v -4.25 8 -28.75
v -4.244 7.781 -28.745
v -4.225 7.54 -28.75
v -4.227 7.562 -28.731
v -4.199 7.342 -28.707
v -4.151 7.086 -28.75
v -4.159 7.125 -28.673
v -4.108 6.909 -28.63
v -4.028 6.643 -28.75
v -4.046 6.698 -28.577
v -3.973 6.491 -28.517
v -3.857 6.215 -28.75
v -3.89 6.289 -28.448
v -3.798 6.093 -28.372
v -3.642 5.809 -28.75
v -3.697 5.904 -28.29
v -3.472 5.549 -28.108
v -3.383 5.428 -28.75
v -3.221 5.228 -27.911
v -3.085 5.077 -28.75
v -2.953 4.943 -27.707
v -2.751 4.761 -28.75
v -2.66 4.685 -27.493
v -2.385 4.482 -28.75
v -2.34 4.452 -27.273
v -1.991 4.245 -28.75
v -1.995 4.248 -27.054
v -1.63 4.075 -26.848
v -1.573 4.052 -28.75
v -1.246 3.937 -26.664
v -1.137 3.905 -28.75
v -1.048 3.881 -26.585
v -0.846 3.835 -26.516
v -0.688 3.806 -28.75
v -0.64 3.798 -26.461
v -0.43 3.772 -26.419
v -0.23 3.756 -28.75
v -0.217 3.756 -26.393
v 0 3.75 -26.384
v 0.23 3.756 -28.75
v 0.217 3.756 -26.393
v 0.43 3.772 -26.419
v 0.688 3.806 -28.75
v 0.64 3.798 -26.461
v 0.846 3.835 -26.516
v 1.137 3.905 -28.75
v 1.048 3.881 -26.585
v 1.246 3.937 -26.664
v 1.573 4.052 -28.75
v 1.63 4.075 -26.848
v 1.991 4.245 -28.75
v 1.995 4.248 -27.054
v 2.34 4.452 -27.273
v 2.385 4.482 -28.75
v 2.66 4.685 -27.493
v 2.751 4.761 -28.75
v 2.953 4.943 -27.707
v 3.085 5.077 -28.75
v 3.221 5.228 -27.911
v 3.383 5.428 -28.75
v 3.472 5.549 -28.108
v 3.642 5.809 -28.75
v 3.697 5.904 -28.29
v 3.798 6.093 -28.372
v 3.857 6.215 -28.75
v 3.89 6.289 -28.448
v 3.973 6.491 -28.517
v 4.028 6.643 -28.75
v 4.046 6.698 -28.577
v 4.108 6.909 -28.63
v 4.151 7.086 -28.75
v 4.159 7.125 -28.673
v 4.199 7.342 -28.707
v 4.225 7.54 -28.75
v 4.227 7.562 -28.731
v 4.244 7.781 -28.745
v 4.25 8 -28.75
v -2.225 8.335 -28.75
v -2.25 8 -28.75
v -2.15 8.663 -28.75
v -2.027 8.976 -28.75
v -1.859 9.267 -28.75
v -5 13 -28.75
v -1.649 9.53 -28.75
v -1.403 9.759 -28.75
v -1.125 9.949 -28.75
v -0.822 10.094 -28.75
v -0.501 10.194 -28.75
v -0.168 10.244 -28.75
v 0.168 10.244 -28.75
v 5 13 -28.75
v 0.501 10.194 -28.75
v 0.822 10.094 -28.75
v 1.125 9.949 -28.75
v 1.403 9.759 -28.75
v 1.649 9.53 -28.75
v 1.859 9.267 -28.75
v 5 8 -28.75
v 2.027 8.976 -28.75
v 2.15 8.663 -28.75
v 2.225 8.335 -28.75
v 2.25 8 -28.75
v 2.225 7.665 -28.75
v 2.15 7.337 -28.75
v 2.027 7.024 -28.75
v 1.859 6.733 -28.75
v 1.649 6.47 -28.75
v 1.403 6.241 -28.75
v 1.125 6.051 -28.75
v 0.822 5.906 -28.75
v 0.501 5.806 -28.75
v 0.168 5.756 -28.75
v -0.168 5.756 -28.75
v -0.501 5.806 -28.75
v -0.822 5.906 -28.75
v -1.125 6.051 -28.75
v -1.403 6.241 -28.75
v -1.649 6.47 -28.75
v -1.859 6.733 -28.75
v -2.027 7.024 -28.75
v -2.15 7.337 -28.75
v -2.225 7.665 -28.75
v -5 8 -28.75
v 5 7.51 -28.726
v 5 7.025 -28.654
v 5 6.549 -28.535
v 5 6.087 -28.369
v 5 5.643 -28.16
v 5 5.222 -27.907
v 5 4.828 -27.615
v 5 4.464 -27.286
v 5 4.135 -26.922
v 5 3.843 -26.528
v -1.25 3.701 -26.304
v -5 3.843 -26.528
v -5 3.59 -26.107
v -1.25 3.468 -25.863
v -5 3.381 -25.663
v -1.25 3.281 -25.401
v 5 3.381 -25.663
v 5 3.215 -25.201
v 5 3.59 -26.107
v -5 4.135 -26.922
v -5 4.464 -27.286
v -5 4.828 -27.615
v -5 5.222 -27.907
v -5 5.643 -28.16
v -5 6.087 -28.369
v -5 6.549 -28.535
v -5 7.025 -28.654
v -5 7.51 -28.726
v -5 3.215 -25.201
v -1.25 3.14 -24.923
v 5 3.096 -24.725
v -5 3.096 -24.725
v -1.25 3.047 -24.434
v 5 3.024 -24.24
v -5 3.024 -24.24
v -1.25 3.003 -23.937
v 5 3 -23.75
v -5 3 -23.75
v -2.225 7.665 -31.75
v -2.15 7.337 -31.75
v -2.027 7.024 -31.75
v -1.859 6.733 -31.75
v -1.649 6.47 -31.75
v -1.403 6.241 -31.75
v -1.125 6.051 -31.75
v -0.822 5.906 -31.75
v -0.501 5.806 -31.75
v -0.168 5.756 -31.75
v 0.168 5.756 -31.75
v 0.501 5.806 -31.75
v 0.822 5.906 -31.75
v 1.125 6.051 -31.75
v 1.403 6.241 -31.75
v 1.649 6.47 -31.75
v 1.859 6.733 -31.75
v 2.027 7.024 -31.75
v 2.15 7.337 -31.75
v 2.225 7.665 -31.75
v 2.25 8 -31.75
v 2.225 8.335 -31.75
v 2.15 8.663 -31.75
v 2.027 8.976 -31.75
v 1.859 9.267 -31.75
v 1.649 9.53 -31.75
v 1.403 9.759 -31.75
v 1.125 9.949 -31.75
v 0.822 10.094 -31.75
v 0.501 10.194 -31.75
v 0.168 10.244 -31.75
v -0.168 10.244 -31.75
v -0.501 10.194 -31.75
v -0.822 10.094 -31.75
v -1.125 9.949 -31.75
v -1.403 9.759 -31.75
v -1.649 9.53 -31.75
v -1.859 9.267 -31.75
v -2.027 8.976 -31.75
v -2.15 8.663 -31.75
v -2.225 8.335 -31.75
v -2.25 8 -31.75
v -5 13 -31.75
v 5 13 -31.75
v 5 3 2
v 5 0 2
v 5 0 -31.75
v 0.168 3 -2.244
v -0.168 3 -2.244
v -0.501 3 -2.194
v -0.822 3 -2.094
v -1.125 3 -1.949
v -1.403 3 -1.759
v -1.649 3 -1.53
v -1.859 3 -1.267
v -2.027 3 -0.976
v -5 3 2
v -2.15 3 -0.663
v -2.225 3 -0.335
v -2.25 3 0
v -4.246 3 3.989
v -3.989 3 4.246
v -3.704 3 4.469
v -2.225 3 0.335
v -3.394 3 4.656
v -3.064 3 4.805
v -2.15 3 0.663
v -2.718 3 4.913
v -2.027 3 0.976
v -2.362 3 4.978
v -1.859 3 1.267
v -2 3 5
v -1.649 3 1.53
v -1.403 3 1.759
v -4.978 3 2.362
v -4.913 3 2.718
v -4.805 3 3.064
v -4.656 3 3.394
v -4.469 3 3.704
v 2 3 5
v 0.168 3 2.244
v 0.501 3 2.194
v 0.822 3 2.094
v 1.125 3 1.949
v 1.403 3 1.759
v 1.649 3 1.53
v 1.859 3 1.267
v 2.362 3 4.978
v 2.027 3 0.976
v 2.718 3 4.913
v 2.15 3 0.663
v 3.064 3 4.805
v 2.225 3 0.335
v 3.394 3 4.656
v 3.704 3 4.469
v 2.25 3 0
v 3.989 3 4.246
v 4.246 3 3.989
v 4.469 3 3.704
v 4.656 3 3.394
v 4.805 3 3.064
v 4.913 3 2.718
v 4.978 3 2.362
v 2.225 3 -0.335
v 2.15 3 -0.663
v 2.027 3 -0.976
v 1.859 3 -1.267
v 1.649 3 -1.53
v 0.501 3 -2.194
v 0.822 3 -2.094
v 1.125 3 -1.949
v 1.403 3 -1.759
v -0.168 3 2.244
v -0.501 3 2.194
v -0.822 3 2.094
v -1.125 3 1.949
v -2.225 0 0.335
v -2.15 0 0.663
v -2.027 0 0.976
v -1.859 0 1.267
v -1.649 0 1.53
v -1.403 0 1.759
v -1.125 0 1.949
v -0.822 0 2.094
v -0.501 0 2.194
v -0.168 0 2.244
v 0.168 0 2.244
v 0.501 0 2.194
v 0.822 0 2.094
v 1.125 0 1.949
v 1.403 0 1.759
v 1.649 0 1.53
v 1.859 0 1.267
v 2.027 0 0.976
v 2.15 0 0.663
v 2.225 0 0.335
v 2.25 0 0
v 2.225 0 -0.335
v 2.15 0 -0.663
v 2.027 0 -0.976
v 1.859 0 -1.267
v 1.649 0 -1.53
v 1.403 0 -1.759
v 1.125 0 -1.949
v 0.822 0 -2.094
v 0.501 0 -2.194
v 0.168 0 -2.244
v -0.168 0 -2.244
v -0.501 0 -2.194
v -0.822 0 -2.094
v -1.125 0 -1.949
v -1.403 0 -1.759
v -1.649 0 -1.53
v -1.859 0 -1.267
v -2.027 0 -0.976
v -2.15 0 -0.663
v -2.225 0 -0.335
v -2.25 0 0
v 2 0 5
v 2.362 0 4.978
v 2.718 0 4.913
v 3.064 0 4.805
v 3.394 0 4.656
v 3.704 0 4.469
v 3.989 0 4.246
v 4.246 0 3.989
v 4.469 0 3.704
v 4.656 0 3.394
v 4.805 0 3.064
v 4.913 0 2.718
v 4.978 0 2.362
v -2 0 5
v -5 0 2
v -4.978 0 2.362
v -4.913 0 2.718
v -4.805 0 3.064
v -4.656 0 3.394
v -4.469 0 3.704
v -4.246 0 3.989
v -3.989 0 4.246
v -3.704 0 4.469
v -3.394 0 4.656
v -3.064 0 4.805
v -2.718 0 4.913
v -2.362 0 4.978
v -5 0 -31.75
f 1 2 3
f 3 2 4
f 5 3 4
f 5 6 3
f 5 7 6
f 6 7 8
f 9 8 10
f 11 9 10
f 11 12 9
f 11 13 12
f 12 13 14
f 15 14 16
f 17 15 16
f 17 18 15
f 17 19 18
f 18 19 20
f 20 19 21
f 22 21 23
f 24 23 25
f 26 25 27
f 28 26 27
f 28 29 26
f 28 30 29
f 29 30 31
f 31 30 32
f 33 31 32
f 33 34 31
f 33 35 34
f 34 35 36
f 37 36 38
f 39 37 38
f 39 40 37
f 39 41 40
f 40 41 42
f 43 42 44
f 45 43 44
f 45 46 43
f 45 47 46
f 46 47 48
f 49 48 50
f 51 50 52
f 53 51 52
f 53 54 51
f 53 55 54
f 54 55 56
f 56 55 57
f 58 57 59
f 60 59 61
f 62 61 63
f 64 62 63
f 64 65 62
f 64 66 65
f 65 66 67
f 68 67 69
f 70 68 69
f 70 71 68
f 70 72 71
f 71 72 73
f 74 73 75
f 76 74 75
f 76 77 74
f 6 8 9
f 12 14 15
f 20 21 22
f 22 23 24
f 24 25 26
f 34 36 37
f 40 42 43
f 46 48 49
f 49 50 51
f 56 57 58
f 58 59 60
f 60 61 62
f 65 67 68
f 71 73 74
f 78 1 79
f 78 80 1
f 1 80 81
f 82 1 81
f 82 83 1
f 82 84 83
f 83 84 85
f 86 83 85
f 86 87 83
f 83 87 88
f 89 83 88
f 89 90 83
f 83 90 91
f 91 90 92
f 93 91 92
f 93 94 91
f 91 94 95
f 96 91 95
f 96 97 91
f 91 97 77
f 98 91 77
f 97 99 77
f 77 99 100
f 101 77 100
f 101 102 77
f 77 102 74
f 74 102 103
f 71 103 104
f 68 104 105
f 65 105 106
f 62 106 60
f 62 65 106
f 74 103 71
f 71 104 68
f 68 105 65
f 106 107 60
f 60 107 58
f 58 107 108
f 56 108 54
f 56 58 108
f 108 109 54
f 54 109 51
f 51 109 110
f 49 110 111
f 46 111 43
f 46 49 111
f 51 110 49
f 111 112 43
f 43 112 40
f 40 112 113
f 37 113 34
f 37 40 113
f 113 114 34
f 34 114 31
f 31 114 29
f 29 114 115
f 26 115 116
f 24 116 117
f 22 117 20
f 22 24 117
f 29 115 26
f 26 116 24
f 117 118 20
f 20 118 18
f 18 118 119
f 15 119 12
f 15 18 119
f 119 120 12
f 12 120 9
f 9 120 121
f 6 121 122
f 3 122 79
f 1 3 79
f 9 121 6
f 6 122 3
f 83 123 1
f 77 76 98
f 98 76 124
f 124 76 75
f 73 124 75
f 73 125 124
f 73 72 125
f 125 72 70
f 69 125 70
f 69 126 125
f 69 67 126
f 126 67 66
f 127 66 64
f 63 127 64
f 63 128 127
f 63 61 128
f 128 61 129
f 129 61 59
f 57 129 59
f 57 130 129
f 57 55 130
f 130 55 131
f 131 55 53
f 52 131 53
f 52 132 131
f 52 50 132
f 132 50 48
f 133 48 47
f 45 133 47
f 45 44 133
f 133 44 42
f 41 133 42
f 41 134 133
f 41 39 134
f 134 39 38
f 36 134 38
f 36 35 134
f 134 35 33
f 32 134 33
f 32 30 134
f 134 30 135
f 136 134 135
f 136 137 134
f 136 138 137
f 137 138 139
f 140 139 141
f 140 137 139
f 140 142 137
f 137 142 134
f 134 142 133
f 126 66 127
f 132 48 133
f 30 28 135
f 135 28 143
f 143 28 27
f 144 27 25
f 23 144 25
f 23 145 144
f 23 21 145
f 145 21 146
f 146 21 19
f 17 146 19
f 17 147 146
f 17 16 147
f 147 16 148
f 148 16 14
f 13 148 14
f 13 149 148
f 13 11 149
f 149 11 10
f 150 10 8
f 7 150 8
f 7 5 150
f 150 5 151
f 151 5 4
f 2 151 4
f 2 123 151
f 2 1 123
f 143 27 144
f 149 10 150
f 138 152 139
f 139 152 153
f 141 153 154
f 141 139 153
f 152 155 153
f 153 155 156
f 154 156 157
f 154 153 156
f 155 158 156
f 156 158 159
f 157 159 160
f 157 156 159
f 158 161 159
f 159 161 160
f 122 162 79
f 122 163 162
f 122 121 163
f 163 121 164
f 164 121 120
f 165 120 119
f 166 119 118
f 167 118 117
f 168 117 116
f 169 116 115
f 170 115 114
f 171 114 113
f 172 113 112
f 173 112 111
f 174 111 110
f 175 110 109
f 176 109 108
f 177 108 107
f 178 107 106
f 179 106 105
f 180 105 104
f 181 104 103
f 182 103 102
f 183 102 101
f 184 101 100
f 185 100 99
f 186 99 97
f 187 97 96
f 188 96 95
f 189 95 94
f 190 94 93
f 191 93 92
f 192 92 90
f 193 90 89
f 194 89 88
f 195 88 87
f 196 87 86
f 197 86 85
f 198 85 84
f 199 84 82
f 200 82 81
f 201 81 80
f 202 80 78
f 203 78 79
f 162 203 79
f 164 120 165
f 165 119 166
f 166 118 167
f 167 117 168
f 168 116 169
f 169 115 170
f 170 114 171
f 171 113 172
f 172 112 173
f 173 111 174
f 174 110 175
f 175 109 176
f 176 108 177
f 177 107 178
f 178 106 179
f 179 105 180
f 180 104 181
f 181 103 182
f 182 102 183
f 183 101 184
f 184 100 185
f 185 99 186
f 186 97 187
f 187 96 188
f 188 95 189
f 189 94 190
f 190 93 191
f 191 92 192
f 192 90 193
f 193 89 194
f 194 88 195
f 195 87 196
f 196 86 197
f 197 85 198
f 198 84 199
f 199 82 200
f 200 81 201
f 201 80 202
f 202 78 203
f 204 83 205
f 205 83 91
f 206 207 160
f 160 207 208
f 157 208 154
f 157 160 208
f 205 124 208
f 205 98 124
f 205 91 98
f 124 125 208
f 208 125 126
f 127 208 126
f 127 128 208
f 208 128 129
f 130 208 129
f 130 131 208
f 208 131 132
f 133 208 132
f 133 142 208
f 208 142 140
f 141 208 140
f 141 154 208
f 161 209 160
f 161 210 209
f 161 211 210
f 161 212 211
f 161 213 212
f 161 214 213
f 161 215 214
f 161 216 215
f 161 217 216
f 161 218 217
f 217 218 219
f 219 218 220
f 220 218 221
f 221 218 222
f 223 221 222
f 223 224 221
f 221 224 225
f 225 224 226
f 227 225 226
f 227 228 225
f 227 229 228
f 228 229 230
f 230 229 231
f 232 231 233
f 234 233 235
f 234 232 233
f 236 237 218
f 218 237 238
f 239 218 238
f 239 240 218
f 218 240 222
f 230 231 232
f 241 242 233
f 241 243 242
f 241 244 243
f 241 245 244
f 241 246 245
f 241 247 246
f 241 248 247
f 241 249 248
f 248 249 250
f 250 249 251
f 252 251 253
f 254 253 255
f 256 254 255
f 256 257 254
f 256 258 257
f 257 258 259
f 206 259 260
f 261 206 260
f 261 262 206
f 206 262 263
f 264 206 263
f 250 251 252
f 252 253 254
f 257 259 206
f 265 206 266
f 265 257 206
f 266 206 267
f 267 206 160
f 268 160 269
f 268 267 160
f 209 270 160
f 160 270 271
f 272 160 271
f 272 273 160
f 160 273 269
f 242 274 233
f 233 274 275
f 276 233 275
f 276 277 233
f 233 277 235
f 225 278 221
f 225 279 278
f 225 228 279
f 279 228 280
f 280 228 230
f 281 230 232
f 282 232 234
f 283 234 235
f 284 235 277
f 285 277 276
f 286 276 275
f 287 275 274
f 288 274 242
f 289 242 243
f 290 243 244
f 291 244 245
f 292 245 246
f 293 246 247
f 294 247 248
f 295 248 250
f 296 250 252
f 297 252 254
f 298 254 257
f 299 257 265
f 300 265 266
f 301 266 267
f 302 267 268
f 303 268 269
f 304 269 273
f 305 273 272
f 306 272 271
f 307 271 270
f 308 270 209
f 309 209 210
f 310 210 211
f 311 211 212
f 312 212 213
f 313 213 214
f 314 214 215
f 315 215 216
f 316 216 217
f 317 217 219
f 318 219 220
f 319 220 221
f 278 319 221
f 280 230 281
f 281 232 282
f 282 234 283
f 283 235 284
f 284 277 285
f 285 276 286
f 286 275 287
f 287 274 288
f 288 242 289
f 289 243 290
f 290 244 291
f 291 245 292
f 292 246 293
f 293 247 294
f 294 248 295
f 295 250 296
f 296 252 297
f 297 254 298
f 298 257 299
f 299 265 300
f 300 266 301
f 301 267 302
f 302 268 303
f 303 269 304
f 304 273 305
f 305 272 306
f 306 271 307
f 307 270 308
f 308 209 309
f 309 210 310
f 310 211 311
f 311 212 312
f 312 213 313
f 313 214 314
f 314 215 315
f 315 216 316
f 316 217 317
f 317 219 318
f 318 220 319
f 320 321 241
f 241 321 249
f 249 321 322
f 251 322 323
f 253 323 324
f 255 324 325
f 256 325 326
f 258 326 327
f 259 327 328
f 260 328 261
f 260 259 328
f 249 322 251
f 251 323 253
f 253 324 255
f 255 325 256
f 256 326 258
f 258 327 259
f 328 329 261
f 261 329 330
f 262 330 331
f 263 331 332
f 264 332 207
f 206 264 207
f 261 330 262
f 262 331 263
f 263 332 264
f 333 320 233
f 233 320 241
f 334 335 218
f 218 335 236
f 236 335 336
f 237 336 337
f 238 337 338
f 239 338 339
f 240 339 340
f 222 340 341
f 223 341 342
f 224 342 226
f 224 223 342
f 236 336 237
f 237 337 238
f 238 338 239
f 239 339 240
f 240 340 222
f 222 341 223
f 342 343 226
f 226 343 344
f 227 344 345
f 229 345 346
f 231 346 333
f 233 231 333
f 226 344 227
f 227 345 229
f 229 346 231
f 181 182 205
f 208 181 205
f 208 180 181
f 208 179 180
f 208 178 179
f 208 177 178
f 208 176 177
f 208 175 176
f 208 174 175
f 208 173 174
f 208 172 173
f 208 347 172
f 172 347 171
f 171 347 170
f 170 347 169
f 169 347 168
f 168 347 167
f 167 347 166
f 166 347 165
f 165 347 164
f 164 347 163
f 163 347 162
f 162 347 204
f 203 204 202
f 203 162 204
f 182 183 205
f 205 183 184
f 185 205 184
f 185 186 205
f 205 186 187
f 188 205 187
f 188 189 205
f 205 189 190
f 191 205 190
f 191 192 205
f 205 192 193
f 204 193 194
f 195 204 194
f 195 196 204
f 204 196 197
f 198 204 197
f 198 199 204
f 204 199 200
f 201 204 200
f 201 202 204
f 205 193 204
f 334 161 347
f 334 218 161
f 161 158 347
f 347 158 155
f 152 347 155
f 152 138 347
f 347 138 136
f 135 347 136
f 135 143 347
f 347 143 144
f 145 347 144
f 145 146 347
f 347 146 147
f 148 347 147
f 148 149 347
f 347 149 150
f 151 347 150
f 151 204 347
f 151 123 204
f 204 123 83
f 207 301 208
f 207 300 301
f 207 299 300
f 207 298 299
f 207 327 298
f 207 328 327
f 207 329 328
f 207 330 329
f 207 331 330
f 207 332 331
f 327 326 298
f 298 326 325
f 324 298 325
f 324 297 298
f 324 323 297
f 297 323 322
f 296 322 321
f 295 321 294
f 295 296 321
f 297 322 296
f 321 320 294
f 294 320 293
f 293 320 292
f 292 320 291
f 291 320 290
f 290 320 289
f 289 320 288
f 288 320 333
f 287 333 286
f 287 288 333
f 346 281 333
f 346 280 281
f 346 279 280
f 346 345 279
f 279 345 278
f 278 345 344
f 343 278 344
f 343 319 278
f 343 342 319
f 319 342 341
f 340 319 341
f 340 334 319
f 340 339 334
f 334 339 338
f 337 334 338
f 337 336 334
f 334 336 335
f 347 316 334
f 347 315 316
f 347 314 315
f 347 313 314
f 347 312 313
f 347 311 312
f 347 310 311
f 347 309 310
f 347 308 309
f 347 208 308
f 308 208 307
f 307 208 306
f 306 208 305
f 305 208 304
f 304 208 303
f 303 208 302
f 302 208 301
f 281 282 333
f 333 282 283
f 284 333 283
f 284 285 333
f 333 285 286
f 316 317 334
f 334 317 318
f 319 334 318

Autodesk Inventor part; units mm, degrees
ref_plane "YZ Plane" through (0, 0, 0) normal (1, 0, 0) x (0, 1, 0)
ref_plane "XZ Plane" through (0, 0, 0) normal (0, 1, 0) x (-1, 0, 0)
ref_plane "XY Plane" through (0, 0, 0) normal (0, 0, 1) x (1, 0, 0)
sketch "Sketch1" plane through (0, 0, 0) normal (0, 1, 0) x (-1, 0, 0)
  circle A0 centre (0, 0) radius 2.25
  line L0 (-2, 5) -> (2, 5)
  line L1 (5, 2) -> (5, -31.75)
  line L2 (5, -31.75) -> (-5, -31.75)
  line L3 (-5, -31.75) -> (-5, 2)
  line L4 (-5, -28.75) -> (5, -28.75)
  arc A1 (-2, 5) -> (-5, 2) centre (-2, 2) ccw
  arc A2 (5, 2) -> (2, 5) centre (2, 2) ccw
  point P0 (-5, 5)
  point P1 (5, 5)
  dimension "d0" = 4.5
  dimension "d3" = 5
  dimension "d4" = 10
  dimension "d5" = 36.75
  dimension "d6" = 3
  dimension "d9" = 3
extrude "Extrusion1" add sketch "Sketch1" along normal blind 3
extrude "Extrusion2" add sketch "Sketch1" along normal blind 13 contours L4 L1 L2 L3
sketch "Sketch2" plane through (-5, 3, -28.75) normal (0, 0, 1) x (1, 0, 0)
  circle A0 centre (5, 5) radius 2.25
  circle A1 centre (5, 5) radius 4.25
  point P0 (5, -3)
  dimension "d12" = 4.5
  dimension "d16" = 2
extrude "Extrusion3" cut sketch "Sketch2" against normal blind 4 contours A0
fillet "Fillet1" radius 5 1 edges at (0, 3, -28.75)
extrude "Extrusion4" cut sketch "Sketch2" along normal blind 4
properties part number "GearStand"
